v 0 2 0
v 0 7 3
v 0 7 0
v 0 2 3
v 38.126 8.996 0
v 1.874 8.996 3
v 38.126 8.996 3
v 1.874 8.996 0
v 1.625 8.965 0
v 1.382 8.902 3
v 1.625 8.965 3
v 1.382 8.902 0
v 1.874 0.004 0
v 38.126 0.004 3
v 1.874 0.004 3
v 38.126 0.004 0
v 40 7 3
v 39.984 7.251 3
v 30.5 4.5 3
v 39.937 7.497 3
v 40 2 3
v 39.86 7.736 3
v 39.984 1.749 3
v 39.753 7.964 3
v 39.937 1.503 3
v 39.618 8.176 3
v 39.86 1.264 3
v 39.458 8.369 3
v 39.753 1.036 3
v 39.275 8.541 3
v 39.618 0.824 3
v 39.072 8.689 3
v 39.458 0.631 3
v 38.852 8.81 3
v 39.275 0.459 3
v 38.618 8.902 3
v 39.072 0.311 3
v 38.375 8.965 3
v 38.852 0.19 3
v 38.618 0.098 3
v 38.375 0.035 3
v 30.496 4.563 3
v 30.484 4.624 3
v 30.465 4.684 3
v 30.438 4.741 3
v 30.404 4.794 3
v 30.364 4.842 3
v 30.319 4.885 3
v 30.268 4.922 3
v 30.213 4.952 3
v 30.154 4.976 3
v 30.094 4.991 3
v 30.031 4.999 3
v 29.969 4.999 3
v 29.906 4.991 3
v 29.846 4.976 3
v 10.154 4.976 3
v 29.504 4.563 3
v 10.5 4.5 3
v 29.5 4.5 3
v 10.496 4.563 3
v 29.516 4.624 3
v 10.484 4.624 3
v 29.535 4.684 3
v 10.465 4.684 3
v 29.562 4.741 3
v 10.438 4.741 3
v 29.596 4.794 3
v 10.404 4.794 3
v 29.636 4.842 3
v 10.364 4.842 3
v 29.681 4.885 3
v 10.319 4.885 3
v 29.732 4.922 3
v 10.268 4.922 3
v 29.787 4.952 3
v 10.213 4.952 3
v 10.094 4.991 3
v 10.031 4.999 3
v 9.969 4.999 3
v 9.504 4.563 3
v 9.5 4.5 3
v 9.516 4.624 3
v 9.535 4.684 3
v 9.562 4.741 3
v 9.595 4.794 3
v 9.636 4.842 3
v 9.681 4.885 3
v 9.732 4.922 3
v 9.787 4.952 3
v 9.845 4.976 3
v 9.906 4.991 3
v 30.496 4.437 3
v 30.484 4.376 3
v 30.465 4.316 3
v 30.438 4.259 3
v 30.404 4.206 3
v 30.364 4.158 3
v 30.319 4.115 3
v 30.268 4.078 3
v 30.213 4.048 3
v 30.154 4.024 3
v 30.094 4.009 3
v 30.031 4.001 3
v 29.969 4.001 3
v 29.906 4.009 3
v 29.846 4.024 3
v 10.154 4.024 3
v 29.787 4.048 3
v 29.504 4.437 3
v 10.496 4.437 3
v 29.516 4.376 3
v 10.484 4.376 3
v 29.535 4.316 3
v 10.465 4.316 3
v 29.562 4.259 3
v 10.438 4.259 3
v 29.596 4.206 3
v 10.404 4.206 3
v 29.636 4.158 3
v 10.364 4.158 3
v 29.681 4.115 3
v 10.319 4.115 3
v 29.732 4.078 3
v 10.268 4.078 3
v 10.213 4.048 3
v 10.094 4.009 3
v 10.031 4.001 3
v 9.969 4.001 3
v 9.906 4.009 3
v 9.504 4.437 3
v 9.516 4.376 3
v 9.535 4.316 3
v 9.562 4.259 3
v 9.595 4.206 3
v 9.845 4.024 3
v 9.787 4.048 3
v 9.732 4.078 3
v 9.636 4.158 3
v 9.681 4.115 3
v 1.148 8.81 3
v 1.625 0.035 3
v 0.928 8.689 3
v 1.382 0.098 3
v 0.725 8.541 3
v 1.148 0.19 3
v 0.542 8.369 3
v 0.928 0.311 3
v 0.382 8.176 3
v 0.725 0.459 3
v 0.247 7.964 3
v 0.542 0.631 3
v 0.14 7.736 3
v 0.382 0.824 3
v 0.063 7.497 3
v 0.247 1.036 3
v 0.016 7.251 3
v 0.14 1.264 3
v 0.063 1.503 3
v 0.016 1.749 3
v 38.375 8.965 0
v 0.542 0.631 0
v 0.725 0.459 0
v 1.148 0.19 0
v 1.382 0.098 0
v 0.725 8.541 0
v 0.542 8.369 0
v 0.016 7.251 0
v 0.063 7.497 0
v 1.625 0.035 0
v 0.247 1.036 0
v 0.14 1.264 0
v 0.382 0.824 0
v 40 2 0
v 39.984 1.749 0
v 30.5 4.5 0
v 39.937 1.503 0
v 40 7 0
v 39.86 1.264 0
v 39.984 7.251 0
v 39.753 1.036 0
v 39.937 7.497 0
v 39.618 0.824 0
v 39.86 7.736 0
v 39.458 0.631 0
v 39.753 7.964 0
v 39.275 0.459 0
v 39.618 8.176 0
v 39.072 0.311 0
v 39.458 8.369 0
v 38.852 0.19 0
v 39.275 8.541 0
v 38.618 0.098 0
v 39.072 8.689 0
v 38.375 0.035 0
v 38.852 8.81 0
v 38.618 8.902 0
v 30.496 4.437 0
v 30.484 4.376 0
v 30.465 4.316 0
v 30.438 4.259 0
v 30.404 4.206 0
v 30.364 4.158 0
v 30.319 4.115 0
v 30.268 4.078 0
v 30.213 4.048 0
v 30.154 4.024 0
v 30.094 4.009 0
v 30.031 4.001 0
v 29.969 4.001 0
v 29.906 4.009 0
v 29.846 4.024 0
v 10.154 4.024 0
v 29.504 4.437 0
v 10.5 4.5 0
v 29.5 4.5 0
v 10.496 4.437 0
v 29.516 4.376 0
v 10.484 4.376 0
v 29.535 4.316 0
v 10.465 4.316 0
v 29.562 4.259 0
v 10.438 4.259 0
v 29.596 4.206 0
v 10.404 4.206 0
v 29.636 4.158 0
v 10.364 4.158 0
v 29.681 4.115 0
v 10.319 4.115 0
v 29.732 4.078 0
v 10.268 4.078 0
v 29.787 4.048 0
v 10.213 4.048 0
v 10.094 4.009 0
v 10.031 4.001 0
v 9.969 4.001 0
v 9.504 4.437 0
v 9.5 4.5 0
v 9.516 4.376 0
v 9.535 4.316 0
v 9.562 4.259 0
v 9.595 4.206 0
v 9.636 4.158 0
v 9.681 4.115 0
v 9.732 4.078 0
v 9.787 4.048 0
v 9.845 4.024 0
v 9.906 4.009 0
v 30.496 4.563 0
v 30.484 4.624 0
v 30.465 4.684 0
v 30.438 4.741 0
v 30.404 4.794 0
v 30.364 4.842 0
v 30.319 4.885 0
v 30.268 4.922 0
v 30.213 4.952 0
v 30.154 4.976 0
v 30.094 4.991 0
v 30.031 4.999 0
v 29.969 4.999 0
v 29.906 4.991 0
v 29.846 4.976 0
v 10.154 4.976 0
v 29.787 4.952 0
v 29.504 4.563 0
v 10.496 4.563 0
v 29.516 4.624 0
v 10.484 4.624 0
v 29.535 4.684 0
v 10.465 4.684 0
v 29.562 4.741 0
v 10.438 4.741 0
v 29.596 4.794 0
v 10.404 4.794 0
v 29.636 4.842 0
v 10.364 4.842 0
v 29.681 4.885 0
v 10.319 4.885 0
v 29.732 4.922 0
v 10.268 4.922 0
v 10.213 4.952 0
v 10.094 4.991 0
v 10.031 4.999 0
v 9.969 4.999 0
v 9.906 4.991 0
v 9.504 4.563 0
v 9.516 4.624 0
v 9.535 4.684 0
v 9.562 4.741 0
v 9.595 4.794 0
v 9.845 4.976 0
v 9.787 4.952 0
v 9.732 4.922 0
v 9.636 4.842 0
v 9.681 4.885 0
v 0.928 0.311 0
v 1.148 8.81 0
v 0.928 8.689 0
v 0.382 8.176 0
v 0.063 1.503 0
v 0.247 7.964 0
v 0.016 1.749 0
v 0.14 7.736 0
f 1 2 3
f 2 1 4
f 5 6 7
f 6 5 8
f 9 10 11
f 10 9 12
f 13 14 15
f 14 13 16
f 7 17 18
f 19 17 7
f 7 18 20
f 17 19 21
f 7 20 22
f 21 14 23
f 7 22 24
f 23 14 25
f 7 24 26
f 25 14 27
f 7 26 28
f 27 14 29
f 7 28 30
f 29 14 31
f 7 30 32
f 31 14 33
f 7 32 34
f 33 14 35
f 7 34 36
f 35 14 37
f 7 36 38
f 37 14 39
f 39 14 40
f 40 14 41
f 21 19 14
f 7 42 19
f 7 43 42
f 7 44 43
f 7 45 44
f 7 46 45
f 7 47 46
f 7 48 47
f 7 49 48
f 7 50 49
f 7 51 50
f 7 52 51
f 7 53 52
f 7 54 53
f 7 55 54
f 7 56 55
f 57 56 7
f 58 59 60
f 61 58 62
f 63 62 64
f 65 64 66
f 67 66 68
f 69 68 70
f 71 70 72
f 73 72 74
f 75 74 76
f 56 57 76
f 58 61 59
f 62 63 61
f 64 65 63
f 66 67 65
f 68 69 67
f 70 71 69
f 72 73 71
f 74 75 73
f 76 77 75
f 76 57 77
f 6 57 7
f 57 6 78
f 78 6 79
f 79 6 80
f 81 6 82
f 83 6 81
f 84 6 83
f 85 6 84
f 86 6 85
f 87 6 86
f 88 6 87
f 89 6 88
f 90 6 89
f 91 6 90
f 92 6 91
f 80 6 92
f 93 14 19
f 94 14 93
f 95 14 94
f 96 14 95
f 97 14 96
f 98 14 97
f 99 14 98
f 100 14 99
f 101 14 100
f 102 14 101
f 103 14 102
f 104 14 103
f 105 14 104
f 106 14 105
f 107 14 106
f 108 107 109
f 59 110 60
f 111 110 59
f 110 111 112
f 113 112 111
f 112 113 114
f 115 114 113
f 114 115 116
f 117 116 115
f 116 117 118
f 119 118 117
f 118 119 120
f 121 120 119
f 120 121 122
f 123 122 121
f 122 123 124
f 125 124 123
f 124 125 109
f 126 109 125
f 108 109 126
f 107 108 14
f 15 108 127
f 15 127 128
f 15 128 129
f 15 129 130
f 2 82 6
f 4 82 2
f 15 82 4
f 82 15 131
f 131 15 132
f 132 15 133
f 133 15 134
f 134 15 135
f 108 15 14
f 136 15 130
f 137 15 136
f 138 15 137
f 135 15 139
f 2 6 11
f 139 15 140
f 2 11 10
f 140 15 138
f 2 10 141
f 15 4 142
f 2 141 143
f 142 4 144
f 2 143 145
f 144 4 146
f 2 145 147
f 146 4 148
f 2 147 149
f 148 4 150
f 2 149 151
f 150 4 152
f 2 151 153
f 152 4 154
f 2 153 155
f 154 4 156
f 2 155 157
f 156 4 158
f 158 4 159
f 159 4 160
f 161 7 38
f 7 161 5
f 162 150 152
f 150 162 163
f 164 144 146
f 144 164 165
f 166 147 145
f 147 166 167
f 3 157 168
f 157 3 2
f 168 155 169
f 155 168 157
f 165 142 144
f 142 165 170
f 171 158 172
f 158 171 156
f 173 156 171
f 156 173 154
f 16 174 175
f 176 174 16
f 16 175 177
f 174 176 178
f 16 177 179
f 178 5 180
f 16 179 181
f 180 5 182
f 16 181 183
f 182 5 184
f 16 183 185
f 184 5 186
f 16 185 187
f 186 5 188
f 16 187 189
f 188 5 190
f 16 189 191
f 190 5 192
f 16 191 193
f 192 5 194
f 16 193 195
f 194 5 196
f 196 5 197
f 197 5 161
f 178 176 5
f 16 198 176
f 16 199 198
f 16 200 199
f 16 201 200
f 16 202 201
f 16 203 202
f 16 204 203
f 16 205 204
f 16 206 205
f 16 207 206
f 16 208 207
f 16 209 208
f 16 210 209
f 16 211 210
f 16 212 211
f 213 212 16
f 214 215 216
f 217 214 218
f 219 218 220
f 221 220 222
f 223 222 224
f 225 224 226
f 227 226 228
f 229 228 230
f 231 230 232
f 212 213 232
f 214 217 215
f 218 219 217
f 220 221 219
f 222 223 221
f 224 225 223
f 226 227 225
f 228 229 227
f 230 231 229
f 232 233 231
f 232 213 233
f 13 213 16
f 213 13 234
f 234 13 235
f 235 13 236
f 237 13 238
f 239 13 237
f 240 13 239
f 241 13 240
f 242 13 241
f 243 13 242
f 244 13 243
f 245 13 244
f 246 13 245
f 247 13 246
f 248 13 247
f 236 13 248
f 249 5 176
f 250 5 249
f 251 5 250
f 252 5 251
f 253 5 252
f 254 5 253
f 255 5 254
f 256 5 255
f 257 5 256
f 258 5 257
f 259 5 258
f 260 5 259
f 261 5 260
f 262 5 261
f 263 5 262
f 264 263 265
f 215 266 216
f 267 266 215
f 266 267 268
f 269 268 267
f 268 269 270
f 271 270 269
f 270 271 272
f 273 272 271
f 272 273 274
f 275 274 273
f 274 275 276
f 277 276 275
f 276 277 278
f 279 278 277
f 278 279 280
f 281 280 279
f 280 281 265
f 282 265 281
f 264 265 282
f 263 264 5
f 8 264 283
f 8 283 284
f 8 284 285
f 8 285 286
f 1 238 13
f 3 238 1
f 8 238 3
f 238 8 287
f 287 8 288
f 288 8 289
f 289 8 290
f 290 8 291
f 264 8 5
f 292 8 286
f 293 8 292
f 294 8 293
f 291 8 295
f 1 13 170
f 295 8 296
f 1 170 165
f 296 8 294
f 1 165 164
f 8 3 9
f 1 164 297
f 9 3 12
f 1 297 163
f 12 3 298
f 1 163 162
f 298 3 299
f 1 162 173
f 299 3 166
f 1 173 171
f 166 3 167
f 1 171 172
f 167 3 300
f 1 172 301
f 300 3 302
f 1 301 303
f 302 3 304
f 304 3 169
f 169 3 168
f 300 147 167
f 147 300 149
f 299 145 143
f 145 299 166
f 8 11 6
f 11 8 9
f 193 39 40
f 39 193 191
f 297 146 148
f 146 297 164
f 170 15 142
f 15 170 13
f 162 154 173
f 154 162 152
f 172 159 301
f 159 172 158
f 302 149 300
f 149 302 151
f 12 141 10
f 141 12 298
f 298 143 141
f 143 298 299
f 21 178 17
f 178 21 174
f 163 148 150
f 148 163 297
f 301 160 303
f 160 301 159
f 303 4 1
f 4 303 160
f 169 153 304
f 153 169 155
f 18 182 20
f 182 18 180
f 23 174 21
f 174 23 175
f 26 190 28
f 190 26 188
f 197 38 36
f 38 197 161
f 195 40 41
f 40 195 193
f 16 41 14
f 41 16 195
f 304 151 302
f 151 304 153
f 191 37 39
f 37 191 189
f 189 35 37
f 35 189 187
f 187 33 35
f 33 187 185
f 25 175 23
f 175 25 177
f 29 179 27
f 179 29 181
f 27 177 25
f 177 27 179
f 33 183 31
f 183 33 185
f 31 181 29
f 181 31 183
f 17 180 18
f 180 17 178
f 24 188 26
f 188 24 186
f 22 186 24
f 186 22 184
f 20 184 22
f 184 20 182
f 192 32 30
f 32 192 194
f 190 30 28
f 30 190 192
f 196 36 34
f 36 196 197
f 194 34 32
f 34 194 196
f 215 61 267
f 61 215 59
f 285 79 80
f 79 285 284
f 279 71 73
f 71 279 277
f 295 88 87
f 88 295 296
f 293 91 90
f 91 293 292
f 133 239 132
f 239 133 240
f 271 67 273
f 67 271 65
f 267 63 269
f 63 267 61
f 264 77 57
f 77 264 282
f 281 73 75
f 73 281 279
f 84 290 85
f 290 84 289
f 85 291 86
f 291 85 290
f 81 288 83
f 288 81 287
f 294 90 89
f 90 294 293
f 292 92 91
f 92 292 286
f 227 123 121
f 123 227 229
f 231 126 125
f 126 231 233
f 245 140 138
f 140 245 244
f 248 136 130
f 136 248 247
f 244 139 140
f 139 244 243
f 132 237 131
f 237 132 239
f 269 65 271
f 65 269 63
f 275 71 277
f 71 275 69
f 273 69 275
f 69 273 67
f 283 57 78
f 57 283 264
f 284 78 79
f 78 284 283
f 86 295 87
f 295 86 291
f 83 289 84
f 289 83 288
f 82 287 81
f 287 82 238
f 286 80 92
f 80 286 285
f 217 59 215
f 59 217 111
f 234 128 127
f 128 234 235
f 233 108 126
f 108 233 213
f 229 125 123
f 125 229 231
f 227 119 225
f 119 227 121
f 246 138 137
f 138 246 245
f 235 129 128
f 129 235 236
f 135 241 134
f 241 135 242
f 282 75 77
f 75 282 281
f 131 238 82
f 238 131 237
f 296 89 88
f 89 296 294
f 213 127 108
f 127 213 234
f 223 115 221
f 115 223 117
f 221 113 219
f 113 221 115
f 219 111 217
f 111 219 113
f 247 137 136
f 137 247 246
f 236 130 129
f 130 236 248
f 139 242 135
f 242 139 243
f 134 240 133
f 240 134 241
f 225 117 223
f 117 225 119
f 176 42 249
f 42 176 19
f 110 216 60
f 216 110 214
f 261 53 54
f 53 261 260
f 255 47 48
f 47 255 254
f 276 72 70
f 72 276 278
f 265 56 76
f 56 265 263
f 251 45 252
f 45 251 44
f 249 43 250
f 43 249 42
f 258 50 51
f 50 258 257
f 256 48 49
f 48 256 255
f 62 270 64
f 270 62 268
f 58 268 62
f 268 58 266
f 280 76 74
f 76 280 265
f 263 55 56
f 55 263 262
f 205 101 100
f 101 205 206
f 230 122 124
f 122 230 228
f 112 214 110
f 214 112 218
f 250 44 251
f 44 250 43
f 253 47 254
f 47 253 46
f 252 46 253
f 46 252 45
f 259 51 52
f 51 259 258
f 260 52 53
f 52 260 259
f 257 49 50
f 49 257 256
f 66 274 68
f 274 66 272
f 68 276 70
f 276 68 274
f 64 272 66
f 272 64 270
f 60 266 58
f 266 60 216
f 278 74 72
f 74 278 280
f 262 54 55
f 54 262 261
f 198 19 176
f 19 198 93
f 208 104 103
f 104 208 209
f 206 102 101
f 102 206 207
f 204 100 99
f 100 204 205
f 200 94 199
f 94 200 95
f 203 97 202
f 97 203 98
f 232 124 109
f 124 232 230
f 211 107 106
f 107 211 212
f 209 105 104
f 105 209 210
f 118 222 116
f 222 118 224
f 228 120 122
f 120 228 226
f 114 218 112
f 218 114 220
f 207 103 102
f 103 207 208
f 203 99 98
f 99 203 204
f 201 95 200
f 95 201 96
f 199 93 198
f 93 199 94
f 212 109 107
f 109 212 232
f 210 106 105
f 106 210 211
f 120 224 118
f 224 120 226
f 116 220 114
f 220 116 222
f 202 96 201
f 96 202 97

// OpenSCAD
rayon=2;
longueur=40;
largeur=9;
ep=3;

module cale_porte(){
   difference(){
      hull(){
          translate([rayon,rayon,0]){cylinder(h = ep, r = rayon, $fn=50);}
          translate([longueur-rayon,rayon,0]){cylinder(h = ep, r = rayon, $fn=50);}
          translate([longueur-rayon,largeur-rayon,0]){cylinder(h = ep, r = rayon, $fn=50);}
          translate([rayon,largeur-rayon,0]){cylinder(h = ep, r = rayon, $fn=50);}
      }
      
      //trou de perçage
      translate([10,largeur/2,-5]){cylinder(h = 20, r = 0.5, $fn=50);}
      translate([longueur-10,largeur/2,-5]){cylinder(h = 20, r = 0.5, $fn=50);}
      
      
   } 
}
cale_porte();
